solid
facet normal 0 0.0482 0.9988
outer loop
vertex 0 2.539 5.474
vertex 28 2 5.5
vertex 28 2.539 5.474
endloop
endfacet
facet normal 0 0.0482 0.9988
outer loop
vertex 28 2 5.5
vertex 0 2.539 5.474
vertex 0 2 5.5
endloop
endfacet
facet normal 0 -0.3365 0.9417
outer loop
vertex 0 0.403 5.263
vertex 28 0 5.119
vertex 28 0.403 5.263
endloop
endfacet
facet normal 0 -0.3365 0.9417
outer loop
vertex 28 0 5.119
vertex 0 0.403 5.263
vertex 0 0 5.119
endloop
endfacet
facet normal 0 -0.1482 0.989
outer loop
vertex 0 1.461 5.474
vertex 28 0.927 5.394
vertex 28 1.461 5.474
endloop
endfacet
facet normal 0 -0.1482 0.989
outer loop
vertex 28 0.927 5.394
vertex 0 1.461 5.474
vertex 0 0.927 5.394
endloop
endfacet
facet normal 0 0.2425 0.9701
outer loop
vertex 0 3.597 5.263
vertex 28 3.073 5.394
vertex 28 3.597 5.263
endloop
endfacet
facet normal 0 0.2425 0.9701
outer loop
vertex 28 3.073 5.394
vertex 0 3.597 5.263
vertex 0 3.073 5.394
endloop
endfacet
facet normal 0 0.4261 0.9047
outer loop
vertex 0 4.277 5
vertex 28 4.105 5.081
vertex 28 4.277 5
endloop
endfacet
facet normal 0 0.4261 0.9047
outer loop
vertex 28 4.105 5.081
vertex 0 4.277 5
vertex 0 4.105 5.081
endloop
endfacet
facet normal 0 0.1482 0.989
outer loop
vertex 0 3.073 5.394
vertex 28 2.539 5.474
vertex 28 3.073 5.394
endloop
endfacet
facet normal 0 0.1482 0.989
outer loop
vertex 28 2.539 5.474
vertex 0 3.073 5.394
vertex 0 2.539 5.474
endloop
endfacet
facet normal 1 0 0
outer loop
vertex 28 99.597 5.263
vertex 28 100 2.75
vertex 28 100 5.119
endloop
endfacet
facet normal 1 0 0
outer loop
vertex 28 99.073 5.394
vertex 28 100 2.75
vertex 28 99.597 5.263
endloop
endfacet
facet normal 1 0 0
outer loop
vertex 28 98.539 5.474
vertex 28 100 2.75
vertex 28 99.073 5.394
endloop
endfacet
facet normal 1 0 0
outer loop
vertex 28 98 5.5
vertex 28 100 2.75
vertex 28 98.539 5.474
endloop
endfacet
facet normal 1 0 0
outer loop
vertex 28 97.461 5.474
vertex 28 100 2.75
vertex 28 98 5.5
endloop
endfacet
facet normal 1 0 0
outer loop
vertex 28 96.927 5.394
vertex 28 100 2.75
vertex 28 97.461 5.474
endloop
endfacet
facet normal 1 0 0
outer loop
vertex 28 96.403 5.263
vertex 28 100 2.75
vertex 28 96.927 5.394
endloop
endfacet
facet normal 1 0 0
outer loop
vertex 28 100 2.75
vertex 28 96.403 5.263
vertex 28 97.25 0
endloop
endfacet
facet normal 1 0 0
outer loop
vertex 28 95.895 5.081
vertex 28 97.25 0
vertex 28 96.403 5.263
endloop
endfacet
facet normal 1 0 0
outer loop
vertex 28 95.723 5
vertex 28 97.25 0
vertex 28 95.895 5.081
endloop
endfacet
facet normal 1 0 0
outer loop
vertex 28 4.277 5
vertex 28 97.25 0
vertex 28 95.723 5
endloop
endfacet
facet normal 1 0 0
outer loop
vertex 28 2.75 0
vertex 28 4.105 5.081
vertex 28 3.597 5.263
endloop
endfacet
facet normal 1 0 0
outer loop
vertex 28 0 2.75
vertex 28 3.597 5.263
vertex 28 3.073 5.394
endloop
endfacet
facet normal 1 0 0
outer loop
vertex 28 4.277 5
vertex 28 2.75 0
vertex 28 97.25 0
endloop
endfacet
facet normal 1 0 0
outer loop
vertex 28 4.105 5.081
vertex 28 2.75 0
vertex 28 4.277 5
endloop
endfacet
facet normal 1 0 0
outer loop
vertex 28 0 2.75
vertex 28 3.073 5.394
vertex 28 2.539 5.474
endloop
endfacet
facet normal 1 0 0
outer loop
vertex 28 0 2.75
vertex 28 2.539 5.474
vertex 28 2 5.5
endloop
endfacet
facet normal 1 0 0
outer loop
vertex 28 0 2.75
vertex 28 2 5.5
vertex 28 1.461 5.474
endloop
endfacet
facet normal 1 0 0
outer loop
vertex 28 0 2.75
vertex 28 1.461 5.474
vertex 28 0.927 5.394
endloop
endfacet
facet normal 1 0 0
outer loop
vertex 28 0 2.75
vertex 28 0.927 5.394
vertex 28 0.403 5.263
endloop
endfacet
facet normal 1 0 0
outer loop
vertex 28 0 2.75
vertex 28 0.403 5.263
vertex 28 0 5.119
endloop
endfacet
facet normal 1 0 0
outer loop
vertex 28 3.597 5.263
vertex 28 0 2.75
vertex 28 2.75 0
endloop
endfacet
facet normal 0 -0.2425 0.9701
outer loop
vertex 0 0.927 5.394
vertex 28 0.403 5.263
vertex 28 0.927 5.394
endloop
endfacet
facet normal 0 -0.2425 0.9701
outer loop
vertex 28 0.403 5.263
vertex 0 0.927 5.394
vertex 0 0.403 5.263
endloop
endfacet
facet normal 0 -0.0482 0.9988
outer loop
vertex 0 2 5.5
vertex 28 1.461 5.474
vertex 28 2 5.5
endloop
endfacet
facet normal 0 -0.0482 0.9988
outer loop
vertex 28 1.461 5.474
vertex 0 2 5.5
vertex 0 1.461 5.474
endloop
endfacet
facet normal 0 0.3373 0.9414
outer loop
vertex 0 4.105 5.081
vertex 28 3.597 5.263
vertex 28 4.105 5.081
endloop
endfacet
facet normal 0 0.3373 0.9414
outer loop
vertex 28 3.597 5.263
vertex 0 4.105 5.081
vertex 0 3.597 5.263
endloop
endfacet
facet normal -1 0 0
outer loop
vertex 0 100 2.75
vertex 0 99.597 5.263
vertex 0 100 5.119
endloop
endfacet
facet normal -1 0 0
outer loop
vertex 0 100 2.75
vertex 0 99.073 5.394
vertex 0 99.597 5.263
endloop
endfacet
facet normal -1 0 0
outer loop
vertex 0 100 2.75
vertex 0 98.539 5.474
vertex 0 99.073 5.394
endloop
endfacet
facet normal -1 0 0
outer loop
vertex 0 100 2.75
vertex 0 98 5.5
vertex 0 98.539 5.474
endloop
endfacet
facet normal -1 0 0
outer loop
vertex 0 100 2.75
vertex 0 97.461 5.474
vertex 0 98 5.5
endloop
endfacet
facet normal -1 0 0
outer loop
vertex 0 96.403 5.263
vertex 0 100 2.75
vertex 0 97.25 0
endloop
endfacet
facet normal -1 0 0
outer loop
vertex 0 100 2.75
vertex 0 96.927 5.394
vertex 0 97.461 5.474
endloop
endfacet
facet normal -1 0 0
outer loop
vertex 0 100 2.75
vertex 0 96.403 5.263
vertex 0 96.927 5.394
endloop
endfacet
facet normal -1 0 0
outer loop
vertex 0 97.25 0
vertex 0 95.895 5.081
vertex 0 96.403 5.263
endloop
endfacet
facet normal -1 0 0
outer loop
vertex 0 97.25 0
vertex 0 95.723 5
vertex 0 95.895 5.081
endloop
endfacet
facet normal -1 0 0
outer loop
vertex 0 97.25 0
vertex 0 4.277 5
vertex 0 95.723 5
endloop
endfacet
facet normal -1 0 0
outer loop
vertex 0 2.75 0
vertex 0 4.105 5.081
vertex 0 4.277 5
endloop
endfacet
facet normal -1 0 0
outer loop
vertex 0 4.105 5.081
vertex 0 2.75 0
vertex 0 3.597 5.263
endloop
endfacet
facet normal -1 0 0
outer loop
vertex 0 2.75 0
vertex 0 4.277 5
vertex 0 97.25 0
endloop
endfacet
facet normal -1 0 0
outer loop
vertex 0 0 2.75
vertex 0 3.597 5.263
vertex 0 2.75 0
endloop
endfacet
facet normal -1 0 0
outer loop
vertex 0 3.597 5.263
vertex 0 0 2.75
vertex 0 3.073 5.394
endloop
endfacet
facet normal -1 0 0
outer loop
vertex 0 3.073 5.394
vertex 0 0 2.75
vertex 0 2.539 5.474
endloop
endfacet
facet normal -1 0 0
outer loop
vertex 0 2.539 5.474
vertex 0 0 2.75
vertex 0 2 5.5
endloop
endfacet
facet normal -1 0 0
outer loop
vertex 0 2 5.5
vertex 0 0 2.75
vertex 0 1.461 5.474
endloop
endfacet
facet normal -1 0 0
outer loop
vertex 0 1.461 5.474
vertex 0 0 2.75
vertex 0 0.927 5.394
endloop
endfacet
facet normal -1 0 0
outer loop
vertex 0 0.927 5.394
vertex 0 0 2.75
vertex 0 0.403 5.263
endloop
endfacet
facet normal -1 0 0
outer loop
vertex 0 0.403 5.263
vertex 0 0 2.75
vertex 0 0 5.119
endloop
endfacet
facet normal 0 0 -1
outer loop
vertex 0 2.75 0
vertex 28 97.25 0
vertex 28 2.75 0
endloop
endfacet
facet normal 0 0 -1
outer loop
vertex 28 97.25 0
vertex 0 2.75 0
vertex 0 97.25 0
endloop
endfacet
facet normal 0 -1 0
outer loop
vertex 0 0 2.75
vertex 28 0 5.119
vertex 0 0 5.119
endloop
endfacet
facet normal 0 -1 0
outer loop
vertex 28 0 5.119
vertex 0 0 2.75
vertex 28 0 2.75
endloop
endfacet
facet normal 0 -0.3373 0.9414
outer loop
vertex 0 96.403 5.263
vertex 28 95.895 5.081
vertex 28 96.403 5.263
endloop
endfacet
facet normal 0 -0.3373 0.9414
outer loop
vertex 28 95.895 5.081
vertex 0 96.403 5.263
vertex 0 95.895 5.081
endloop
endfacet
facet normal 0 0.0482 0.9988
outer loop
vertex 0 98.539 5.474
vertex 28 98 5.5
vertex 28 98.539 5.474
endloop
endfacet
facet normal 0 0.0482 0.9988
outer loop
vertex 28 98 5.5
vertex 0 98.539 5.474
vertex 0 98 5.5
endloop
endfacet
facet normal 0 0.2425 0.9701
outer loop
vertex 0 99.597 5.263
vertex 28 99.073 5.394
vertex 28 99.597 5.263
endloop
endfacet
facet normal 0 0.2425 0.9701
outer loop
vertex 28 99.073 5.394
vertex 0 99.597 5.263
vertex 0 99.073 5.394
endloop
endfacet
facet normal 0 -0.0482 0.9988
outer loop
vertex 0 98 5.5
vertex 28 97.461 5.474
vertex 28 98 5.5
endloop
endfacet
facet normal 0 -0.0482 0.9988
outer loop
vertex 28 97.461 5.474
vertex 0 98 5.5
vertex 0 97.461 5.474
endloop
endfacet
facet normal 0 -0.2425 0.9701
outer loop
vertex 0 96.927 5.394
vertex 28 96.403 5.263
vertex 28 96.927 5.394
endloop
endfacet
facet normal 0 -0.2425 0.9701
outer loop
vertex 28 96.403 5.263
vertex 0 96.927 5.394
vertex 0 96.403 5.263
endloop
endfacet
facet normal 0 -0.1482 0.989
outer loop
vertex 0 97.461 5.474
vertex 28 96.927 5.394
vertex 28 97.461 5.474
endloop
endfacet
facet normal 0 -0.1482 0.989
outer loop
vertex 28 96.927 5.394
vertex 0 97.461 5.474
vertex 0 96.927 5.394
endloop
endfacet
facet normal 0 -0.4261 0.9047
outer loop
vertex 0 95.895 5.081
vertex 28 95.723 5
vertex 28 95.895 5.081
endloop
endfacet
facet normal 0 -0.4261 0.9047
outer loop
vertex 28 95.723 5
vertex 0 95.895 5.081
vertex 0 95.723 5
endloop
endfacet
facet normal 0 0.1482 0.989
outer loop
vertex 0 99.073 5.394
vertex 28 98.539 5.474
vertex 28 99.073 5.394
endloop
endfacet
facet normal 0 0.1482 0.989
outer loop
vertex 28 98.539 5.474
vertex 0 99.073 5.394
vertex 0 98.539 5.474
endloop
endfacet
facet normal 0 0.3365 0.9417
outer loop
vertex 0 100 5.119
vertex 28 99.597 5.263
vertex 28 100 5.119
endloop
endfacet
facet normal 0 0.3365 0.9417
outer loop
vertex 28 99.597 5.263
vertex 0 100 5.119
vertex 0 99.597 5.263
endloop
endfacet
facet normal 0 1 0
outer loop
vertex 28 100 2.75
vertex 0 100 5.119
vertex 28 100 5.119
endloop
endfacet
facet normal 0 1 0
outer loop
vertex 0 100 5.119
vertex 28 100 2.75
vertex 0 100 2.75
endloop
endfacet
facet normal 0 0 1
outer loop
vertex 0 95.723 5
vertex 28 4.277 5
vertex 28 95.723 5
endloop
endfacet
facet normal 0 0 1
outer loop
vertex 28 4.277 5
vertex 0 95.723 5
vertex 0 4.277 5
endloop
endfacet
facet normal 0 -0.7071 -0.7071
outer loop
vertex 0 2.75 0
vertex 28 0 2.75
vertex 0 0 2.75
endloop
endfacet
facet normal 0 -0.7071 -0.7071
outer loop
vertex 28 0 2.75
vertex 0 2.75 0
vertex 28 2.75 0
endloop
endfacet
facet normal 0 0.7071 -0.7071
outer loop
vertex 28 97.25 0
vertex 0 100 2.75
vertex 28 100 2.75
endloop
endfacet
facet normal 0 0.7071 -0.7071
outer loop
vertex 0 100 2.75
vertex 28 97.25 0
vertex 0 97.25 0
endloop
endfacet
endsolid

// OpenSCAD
// Originally by Hexdoll https://www.thingiverse.com/thing:40110

module plate(PLATE_SIZE_X = 28, PLATE_SIZE_Y = 100, PLATE_SIZE_Z = 5)
{
  BUMP_RADIUS = 5.5;
  BUMP_OFFSET_X = 2;
  
  difference() {
    union()
    {
      cube([PLATE_SIZE_X,PLATE_SIZE_Y,PLATE_SIZE_Z]);
    
      intersection()
      {
        translate([0,BUMP_OFFSET_X,0])
        rotate([0,90,0])
        cylinder(r=BUMP_RADIUS, h=PLATE_SIZE_X, $fn=64);
    
        cube([PLATE_SIZE_X,PLATE_SIZE_Y,PLATE_SIZE_Z+(2*BUMP_RADIUS)]);
      }
    
      intersection()
      {
        translate([0,PLATE_SIZE_Y-BUMP_OFFSET_X,0])
        rotate([0,90,0])
        cylinder(r=BUMP_RADIUS, h=PLATE_SIZE_X, $fn=64);
    
        cube([PLATE_SIZE_X,PLATE_SIZE_Y,PLATE_SIZE_Z+(2*BUMP_RADIUS)]);
      }
    }
    
    for (i = [0,1]) {
      translate([0, i*PLATE_SIZE_Y, 0])
      mirror([0,i,0])
      scale([PLATE_SIZE_X, BUMP_RADIUS/2, BUMP_RADIUS/2])
      translate([0,1,0])
      mirror([0,1,0])
      difference() {
        cube(1);
        rotate([45,0,0])
          cube(2);
      }
    }
  }
}
plate();
